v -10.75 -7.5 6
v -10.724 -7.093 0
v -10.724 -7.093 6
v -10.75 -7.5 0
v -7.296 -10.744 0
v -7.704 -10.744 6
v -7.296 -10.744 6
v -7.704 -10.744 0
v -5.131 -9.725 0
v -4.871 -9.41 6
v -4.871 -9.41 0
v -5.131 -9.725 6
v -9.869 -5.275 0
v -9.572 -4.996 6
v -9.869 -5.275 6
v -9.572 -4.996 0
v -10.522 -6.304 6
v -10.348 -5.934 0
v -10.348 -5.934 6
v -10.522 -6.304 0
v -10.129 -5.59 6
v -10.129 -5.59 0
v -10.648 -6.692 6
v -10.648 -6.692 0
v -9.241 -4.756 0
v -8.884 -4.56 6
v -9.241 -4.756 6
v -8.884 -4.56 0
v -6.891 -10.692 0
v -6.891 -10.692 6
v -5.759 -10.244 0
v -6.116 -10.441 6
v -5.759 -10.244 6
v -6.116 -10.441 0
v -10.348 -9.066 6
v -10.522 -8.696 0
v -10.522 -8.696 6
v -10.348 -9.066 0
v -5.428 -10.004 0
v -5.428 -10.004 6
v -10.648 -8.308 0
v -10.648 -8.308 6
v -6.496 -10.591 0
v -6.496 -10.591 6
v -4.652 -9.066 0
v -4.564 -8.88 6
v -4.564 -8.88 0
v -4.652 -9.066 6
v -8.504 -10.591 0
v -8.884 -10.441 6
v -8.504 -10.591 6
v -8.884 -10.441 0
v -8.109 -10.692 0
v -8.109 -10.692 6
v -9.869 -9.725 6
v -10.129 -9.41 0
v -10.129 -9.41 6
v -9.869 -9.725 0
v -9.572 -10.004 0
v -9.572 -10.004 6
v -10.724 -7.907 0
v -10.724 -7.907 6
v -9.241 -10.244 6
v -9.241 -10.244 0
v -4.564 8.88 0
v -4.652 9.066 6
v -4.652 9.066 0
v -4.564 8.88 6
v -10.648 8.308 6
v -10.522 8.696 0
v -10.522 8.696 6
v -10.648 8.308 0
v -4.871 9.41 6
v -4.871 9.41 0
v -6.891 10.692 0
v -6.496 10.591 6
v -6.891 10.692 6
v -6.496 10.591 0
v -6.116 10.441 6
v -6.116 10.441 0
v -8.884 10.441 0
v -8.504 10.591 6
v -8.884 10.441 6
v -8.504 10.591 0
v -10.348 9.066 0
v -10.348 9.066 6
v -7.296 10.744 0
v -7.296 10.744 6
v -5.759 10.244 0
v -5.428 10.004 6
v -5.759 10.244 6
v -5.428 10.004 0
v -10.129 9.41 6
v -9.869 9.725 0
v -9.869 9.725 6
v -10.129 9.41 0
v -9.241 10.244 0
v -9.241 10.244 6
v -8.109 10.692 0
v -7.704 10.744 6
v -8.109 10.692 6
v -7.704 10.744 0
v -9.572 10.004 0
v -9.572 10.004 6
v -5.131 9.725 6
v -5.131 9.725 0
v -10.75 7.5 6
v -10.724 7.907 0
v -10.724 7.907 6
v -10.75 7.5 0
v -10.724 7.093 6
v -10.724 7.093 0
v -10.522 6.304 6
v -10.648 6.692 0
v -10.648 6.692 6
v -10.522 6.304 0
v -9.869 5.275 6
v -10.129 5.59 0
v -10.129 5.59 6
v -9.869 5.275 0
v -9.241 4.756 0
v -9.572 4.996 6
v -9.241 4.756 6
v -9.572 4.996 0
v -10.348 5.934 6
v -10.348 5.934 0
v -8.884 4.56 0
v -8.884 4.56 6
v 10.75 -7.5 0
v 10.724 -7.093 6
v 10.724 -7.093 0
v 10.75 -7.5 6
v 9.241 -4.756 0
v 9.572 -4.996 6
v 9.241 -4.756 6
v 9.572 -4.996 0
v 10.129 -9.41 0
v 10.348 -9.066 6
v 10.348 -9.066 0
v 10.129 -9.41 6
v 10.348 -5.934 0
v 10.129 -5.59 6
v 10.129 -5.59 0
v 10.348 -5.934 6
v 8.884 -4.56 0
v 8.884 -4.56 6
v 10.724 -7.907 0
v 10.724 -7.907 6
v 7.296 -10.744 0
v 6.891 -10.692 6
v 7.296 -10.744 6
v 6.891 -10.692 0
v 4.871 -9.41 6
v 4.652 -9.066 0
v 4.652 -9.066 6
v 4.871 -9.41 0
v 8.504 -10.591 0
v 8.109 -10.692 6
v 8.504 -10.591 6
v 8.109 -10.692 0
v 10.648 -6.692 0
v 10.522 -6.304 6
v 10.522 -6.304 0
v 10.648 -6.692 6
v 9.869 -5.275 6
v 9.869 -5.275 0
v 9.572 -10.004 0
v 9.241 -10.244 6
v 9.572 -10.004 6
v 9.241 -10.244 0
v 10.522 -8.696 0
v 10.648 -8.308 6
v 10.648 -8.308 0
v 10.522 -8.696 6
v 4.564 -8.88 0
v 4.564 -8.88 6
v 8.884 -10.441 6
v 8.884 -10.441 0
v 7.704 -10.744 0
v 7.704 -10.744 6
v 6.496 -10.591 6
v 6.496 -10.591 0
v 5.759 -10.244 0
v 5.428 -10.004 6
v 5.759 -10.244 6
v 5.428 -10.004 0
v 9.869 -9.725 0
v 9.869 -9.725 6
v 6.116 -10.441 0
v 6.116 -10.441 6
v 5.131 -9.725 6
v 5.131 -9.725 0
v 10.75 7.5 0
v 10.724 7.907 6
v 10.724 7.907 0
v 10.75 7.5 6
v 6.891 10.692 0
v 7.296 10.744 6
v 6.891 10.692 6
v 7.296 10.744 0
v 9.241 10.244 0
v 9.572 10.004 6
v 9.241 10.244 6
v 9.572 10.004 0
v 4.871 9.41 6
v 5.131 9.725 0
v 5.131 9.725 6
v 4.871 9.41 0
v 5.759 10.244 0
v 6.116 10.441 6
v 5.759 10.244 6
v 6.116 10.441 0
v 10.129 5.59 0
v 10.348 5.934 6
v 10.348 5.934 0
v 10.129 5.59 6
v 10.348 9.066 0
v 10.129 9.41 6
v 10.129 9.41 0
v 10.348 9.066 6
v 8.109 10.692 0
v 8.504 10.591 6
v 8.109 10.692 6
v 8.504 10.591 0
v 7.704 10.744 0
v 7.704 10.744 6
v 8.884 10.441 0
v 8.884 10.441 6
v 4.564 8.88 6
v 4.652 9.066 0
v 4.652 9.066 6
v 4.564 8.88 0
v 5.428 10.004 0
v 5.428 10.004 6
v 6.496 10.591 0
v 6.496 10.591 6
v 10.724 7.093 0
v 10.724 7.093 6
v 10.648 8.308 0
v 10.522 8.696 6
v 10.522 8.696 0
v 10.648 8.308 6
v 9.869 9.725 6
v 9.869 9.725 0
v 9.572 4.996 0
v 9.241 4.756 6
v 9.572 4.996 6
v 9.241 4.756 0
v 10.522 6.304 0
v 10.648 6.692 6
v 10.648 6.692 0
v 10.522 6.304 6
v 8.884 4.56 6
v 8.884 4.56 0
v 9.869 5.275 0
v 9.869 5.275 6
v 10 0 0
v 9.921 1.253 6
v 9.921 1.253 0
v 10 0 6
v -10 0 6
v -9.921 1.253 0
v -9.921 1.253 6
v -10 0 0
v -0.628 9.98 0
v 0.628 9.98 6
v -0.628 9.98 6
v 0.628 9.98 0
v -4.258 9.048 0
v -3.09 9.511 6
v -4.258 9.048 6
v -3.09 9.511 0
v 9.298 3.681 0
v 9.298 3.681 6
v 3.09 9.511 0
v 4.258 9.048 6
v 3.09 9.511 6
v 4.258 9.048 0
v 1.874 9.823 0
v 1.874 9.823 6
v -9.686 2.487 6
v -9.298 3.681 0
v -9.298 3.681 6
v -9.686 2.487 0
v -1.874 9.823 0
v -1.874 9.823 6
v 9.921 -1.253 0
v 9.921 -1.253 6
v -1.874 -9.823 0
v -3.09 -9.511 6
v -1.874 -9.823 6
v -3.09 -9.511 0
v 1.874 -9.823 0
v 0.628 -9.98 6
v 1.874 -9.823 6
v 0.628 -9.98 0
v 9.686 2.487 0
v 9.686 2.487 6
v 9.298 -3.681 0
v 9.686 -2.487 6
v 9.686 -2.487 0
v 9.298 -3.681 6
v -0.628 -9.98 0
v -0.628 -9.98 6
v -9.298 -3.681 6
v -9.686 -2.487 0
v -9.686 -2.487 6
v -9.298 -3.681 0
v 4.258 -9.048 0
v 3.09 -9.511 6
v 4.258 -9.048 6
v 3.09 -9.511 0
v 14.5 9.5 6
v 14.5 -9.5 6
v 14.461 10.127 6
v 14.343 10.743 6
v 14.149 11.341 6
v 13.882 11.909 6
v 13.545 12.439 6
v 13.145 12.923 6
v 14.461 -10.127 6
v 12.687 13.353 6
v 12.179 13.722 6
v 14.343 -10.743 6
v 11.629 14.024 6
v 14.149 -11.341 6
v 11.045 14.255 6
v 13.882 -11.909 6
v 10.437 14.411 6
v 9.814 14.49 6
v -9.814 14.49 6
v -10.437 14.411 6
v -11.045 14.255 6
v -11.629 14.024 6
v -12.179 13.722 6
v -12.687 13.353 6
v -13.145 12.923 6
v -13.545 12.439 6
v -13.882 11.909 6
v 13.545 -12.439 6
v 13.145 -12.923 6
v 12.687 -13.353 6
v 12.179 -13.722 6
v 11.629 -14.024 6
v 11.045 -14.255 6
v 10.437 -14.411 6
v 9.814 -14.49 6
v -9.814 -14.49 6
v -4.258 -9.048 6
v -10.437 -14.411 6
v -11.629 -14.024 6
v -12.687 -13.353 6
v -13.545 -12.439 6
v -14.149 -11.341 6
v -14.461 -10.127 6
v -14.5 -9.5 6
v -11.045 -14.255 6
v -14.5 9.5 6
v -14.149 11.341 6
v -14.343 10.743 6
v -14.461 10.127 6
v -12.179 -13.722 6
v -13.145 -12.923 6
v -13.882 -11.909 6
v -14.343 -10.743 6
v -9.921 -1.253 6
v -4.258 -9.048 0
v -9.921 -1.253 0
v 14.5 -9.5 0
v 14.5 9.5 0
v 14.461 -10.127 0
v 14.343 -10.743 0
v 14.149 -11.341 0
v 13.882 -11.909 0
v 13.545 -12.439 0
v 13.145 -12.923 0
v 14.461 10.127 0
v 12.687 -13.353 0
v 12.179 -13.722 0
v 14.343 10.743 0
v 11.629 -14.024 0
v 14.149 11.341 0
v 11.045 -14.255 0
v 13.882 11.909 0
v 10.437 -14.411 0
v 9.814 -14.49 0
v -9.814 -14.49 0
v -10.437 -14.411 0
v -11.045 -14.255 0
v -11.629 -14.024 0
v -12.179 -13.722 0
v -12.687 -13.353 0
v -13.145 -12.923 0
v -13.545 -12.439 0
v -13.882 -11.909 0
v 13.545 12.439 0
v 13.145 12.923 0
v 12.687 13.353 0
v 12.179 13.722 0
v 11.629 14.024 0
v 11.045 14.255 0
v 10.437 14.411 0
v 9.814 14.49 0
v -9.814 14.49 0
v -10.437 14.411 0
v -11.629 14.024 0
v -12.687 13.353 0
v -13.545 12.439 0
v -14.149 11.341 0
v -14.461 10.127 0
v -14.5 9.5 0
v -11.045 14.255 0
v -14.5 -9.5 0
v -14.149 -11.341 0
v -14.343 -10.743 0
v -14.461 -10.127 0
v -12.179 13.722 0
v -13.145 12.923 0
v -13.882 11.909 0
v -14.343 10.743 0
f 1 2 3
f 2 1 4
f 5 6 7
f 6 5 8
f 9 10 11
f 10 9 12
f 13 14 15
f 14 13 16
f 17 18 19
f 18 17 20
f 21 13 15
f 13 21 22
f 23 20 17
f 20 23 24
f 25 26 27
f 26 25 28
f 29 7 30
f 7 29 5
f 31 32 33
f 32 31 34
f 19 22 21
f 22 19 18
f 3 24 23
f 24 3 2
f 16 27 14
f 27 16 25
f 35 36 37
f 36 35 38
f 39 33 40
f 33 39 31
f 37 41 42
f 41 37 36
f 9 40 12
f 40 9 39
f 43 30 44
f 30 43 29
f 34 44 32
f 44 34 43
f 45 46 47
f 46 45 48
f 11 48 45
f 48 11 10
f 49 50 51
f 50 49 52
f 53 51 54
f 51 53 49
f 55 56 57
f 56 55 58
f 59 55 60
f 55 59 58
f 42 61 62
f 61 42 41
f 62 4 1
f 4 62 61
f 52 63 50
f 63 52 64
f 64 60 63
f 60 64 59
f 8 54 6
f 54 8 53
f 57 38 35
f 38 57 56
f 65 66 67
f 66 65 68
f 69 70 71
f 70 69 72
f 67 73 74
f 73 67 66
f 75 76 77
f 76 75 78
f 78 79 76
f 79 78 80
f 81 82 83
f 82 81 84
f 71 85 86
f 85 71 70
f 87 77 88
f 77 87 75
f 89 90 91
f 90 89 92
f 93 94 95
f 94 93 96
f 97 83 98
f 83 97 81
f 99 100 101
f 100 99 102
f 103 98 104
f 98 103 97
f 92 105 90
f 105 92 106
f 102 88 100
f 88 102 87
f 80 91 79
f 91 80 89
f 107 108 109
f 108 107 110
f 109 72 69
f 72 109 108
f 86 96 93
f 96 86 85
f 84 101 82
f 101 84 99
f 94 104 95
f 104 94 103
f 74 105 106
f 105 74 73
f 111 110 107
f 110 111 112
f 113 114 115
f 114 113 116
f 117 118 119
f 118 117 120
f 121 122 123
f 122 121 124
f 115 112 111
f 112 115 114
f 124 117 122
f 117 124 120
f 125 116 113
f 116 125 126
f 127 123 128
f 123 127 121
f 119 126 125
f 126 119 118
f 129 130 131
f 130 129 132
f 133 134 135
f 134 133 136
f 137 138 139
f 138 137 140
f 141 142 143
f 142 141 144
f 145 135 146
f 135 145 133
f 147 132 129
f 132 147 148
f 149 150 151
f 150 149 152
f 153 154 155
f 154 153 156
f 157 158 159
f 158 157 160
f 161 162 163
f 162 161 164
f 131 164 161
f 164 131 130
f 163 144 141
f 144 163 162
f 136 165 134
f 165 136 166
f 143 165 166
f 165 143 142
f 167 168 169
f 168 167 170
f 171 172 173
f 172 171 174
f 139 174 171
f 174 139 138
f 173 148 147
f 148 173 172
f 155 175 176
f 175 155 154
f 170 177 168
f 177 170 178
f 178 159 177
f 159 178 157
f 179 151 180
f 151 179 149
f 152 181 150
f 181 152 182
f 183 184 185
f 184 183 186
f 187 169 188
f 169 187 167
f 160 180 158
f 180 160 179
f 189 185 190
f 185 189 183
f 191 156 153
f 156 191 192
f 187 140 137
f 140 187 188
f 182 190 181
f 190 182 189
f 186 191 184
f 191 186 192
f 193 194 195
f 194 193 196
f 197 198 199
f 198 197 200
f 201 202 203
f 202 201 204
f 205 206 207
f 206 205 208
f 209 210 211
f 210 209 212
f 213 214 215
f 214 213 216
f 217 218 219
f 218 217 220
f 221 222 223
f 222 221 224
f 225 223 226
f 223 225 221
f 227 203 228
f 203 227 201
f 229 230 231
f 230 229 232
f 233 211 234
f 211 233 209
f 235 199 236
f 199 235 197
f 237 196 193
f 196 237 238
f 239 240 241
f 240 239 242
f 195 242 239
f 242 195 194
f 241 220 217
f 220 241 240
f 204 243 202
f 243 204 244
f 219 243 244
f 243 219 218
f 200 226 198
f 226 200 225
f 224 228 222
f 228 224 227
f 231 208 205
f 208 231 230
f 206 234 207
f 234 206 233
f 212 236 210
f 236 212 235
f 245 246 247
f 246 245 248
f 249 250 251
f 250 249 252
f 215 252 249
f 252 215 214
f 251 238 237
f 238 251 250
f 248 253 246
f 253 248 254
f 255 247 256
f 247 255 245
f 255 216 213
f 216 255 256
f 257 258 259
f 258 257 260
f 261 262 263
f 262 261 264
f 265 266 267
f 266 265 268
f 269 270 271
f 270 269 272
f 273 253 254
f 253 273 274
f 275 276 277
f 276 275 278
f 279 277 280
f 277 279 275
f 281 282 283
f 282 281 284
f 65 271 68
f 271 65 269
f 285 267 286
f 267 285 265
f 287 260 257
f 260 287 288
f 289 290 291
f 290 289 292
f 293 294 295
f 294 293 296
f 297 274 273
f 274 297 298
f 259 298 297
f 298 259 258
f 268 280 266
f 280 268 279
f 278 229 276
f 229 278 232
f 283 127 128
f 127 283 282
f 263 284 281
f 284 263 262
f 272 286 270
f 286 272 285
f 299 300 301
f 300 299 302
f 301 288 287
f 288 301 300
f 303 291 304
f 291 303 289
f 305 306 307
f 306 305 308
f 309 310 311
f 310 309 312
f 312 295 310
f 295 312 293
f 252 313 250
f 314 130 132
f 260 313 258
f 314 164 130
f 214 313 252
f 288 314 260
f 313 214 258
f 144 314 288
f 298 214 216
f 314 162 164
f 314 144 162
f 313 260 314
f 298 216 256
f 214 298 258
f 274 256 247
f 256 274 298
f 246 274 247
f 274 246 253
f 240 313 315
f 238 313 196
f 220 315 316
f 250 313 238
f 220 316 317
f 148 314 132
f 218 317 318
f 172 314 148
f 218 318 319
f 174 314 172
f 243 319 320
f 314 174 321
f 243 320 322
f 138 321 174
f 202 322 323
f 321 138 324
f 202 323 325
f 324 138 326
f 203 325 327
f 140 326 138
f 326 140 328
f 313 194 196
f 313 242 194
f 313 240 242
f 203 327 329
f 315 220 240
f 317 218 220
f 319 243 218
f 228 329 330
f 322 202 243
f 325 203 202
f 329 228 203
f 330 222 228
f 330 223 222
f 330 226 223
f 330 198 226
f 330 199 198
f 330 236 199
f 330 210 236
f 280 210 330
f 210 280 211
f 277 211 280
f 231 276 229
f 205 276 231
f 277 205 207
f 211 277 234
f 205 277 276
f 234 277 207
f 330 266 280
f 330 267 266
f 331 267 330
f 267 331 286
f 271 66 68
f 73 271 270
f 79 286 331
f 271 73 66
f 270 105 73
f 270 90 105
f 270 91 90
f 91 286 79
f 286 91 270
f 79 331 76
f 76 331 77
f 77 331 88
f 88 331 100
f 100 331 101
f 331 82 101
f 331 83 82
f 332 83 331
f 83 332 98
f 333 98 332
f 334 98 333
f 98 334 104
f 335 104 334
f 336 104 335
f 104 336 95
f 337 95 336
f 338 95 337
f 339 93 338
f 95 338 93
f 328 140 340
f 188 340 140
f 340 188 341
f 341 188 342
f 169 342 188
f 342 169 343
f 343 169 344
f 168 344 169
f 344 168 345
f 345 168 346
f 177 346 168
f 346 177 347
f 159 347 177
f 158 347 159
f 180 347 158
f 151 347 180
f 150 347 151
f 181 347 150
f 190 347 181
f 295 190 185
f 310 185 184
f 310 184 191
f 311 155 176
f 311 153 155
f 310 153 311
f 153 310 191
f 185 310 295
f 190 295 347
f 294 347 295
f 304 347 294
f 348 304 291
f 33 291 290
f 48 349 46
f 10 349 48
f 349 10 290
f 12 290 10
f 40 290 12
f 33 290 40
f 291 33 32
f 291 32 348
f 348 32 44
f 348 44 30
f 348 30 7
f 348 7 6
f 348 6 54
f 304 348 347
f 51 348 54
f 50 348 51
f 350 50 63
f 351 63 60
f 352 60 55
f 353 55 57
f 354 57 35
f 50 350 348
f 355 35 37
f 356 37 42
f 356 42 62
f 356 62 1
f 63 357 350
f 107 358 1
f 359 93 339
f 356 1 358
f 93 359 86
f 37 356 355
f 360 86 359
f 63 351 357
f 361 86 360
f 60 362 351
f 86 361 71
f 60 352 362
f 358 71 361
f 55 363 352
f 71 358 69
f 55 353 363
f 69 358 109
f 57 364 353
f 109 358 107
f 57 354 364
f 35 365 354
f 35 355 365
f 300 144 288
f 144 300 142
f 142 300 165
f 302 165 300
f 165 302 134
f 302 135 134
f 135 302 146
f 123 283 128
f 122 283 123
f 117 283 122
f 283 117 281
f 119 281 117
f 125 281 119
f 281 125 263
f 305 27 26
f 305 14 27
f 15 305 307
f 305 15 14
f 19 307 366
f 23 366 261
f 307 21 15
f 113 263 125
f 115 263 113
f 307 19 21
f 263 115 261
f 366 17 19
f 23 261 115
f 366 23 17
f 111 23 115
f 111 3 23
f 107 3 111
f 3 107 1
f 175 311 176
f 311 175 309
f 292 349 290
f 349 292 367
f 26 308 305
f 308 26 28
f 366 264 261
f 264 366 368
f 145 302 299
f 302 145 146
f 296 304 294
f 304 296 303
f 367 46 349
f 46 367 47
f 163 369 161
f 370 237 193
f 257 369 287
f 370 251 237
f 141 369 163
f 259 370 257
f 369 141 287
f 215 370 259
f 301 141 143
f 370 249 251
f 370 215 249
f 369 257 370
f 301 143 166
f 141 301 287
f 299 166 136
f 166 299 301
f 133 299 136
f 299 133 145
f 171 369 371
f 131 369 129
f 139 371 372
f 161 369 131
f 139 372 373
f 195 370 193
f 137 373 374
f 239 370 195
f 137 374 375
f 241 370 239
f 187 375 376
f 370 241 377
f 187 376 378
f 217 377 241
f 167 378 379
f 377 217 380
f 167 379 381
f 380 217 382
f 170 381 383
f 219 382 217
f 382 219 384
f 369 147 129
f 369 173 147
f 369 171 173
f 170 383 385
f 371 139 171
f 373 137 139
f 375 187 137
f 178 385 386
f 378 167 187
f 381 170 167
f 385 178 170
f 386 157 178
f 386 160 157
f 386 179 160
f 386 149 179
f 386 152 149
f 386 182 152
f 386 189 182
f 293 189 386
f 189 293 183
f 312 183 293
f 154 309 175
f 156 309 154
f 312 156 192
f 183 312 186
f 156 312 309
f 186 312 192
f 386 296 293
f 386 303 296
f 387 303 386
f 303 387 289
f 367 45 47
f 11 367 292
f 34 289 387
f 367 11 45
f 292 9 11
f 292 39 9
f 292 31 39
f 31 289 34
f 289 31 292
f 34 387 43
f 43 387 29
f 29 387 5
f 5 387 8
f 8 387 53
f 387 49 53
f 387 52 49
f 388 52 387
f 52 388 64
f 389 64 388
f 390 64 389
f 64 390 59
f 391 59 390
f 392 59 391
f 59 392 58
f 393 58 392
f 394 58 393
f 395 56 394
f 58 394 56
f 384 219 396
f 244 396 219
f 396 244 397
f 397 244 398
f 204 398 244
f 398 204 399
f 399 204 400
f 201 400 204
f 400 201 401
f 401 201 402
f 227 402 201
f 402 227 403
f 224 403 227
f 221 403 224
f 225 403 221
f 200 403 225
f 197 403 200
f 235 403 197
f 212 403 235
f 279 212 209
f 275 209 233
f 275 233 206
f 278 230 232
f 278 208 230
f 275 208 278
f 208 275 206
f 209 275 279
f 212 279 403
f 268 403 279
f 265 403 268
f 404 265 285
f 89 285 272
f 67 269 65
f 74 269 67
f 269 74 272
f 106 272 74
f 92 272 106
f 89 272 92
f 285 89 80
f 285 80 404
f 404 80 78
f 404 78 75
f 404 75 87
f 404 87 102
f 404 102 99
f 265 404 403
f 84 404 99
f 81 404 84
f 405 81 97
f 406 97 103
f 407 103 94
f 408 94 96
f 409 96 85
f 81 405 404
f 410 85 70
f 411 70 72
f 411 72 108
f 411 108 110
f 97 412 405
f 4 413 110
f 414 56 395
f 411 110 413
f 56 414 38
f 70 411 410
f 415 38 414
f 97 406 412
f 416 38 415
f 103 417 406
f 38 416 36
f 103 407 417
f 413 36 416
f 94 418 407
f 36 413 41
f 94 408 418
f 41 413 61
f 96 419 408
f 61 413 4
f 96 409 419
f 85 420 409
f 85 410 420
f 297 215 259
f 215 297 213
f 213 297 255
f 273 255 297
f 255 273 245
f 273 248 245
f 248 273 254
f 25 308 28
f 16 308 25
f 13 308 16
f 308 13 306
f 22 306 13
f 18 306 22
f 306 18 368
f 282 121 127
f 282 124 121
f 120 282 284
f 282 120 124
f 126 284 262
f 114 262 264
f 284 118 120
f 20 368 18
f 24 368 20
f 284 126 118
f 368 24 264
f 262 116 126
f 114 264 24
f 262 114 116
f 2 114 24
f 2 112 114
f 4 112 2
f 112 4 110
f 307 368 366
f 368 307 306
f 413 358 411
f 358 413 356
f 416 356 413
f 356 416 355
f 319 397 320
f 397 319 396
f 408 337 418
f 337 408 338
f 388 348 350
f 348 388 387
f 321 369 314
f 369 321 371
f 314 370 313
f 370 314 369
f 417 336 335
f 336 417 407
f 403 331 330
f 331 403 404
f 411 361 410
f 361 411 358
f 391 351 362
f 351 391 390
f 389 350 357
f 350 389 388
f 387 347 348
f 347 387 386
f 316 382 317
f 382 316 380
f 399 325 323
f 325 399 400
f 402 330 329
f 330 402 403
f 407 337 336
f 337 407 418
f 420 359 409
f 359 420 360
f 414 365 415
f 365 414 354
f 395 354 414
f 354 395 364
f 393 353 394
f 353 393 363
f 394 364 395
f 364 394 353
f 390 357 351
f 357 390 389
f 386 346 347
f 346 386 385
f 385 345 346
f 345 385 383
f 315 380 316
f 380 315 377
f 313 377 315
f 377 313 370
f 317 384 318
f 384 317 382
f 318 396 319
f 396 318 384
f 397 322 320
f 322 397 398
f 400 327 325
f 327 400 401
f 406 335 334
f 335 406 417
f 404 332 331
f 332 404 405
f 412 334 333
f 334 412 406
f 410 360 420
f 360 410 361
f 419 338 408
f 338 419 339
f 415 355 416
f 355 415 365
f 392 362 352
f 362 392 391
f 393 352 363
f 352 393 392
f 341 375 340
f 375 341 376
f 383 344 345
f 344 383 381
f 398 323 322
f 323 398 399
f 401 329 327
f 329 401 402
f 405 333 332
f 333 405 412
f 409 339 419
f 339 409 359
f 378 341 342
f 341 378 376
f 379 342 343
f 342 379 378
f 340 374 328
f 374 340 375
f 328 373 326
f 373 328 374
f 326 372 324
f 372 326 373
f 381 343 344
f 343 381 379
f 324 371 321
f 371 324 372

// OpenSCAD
$fn = 50;


difference() {
	union() {
		hull() {
			translate(v = [-9.5000000000, 9.5000000000, 0]) {
				cylinder(h = 6, r = 5);
			}
			translate(v = [9.5000000000, 9.5000000000, 0]) {
				cylinder(h = 6, r = 5);
			}
			translate(v = [-9.5000000000, -9.5000000000, 0]) {
				cylinder(h = 6, r = 5);
			}
			translate(v = [9.5000000000, -9.5000000000, 0]) {
				cylinder(h = 6, r = 5);
			}
		}
	}
	union() {
		#translate(v = [-7.5000000000, -7.5000000000, -100.0000000000]) {
			cylinder(h = 200, r = 3.2500000000);
		}
		#translate(v = [-7.5000000000, 7.5000000000, -100.0000000000]) {
			cylinder(h = 200, r = 3.2500000000);
		}
		#translate(v = [7.5000000000, -7.5000000000, -100.0000000000]) {
			cylinder(h = 200, r = 3.2500000000);
		}
		#translate(v = [7.5000000000, 7.5000000000, -100.0000000000]) {
			cylinder(h = 200, r = 3.2500000000);
		}
		#cylinder(h = 6, r = 10.0000000000);
	}
}
